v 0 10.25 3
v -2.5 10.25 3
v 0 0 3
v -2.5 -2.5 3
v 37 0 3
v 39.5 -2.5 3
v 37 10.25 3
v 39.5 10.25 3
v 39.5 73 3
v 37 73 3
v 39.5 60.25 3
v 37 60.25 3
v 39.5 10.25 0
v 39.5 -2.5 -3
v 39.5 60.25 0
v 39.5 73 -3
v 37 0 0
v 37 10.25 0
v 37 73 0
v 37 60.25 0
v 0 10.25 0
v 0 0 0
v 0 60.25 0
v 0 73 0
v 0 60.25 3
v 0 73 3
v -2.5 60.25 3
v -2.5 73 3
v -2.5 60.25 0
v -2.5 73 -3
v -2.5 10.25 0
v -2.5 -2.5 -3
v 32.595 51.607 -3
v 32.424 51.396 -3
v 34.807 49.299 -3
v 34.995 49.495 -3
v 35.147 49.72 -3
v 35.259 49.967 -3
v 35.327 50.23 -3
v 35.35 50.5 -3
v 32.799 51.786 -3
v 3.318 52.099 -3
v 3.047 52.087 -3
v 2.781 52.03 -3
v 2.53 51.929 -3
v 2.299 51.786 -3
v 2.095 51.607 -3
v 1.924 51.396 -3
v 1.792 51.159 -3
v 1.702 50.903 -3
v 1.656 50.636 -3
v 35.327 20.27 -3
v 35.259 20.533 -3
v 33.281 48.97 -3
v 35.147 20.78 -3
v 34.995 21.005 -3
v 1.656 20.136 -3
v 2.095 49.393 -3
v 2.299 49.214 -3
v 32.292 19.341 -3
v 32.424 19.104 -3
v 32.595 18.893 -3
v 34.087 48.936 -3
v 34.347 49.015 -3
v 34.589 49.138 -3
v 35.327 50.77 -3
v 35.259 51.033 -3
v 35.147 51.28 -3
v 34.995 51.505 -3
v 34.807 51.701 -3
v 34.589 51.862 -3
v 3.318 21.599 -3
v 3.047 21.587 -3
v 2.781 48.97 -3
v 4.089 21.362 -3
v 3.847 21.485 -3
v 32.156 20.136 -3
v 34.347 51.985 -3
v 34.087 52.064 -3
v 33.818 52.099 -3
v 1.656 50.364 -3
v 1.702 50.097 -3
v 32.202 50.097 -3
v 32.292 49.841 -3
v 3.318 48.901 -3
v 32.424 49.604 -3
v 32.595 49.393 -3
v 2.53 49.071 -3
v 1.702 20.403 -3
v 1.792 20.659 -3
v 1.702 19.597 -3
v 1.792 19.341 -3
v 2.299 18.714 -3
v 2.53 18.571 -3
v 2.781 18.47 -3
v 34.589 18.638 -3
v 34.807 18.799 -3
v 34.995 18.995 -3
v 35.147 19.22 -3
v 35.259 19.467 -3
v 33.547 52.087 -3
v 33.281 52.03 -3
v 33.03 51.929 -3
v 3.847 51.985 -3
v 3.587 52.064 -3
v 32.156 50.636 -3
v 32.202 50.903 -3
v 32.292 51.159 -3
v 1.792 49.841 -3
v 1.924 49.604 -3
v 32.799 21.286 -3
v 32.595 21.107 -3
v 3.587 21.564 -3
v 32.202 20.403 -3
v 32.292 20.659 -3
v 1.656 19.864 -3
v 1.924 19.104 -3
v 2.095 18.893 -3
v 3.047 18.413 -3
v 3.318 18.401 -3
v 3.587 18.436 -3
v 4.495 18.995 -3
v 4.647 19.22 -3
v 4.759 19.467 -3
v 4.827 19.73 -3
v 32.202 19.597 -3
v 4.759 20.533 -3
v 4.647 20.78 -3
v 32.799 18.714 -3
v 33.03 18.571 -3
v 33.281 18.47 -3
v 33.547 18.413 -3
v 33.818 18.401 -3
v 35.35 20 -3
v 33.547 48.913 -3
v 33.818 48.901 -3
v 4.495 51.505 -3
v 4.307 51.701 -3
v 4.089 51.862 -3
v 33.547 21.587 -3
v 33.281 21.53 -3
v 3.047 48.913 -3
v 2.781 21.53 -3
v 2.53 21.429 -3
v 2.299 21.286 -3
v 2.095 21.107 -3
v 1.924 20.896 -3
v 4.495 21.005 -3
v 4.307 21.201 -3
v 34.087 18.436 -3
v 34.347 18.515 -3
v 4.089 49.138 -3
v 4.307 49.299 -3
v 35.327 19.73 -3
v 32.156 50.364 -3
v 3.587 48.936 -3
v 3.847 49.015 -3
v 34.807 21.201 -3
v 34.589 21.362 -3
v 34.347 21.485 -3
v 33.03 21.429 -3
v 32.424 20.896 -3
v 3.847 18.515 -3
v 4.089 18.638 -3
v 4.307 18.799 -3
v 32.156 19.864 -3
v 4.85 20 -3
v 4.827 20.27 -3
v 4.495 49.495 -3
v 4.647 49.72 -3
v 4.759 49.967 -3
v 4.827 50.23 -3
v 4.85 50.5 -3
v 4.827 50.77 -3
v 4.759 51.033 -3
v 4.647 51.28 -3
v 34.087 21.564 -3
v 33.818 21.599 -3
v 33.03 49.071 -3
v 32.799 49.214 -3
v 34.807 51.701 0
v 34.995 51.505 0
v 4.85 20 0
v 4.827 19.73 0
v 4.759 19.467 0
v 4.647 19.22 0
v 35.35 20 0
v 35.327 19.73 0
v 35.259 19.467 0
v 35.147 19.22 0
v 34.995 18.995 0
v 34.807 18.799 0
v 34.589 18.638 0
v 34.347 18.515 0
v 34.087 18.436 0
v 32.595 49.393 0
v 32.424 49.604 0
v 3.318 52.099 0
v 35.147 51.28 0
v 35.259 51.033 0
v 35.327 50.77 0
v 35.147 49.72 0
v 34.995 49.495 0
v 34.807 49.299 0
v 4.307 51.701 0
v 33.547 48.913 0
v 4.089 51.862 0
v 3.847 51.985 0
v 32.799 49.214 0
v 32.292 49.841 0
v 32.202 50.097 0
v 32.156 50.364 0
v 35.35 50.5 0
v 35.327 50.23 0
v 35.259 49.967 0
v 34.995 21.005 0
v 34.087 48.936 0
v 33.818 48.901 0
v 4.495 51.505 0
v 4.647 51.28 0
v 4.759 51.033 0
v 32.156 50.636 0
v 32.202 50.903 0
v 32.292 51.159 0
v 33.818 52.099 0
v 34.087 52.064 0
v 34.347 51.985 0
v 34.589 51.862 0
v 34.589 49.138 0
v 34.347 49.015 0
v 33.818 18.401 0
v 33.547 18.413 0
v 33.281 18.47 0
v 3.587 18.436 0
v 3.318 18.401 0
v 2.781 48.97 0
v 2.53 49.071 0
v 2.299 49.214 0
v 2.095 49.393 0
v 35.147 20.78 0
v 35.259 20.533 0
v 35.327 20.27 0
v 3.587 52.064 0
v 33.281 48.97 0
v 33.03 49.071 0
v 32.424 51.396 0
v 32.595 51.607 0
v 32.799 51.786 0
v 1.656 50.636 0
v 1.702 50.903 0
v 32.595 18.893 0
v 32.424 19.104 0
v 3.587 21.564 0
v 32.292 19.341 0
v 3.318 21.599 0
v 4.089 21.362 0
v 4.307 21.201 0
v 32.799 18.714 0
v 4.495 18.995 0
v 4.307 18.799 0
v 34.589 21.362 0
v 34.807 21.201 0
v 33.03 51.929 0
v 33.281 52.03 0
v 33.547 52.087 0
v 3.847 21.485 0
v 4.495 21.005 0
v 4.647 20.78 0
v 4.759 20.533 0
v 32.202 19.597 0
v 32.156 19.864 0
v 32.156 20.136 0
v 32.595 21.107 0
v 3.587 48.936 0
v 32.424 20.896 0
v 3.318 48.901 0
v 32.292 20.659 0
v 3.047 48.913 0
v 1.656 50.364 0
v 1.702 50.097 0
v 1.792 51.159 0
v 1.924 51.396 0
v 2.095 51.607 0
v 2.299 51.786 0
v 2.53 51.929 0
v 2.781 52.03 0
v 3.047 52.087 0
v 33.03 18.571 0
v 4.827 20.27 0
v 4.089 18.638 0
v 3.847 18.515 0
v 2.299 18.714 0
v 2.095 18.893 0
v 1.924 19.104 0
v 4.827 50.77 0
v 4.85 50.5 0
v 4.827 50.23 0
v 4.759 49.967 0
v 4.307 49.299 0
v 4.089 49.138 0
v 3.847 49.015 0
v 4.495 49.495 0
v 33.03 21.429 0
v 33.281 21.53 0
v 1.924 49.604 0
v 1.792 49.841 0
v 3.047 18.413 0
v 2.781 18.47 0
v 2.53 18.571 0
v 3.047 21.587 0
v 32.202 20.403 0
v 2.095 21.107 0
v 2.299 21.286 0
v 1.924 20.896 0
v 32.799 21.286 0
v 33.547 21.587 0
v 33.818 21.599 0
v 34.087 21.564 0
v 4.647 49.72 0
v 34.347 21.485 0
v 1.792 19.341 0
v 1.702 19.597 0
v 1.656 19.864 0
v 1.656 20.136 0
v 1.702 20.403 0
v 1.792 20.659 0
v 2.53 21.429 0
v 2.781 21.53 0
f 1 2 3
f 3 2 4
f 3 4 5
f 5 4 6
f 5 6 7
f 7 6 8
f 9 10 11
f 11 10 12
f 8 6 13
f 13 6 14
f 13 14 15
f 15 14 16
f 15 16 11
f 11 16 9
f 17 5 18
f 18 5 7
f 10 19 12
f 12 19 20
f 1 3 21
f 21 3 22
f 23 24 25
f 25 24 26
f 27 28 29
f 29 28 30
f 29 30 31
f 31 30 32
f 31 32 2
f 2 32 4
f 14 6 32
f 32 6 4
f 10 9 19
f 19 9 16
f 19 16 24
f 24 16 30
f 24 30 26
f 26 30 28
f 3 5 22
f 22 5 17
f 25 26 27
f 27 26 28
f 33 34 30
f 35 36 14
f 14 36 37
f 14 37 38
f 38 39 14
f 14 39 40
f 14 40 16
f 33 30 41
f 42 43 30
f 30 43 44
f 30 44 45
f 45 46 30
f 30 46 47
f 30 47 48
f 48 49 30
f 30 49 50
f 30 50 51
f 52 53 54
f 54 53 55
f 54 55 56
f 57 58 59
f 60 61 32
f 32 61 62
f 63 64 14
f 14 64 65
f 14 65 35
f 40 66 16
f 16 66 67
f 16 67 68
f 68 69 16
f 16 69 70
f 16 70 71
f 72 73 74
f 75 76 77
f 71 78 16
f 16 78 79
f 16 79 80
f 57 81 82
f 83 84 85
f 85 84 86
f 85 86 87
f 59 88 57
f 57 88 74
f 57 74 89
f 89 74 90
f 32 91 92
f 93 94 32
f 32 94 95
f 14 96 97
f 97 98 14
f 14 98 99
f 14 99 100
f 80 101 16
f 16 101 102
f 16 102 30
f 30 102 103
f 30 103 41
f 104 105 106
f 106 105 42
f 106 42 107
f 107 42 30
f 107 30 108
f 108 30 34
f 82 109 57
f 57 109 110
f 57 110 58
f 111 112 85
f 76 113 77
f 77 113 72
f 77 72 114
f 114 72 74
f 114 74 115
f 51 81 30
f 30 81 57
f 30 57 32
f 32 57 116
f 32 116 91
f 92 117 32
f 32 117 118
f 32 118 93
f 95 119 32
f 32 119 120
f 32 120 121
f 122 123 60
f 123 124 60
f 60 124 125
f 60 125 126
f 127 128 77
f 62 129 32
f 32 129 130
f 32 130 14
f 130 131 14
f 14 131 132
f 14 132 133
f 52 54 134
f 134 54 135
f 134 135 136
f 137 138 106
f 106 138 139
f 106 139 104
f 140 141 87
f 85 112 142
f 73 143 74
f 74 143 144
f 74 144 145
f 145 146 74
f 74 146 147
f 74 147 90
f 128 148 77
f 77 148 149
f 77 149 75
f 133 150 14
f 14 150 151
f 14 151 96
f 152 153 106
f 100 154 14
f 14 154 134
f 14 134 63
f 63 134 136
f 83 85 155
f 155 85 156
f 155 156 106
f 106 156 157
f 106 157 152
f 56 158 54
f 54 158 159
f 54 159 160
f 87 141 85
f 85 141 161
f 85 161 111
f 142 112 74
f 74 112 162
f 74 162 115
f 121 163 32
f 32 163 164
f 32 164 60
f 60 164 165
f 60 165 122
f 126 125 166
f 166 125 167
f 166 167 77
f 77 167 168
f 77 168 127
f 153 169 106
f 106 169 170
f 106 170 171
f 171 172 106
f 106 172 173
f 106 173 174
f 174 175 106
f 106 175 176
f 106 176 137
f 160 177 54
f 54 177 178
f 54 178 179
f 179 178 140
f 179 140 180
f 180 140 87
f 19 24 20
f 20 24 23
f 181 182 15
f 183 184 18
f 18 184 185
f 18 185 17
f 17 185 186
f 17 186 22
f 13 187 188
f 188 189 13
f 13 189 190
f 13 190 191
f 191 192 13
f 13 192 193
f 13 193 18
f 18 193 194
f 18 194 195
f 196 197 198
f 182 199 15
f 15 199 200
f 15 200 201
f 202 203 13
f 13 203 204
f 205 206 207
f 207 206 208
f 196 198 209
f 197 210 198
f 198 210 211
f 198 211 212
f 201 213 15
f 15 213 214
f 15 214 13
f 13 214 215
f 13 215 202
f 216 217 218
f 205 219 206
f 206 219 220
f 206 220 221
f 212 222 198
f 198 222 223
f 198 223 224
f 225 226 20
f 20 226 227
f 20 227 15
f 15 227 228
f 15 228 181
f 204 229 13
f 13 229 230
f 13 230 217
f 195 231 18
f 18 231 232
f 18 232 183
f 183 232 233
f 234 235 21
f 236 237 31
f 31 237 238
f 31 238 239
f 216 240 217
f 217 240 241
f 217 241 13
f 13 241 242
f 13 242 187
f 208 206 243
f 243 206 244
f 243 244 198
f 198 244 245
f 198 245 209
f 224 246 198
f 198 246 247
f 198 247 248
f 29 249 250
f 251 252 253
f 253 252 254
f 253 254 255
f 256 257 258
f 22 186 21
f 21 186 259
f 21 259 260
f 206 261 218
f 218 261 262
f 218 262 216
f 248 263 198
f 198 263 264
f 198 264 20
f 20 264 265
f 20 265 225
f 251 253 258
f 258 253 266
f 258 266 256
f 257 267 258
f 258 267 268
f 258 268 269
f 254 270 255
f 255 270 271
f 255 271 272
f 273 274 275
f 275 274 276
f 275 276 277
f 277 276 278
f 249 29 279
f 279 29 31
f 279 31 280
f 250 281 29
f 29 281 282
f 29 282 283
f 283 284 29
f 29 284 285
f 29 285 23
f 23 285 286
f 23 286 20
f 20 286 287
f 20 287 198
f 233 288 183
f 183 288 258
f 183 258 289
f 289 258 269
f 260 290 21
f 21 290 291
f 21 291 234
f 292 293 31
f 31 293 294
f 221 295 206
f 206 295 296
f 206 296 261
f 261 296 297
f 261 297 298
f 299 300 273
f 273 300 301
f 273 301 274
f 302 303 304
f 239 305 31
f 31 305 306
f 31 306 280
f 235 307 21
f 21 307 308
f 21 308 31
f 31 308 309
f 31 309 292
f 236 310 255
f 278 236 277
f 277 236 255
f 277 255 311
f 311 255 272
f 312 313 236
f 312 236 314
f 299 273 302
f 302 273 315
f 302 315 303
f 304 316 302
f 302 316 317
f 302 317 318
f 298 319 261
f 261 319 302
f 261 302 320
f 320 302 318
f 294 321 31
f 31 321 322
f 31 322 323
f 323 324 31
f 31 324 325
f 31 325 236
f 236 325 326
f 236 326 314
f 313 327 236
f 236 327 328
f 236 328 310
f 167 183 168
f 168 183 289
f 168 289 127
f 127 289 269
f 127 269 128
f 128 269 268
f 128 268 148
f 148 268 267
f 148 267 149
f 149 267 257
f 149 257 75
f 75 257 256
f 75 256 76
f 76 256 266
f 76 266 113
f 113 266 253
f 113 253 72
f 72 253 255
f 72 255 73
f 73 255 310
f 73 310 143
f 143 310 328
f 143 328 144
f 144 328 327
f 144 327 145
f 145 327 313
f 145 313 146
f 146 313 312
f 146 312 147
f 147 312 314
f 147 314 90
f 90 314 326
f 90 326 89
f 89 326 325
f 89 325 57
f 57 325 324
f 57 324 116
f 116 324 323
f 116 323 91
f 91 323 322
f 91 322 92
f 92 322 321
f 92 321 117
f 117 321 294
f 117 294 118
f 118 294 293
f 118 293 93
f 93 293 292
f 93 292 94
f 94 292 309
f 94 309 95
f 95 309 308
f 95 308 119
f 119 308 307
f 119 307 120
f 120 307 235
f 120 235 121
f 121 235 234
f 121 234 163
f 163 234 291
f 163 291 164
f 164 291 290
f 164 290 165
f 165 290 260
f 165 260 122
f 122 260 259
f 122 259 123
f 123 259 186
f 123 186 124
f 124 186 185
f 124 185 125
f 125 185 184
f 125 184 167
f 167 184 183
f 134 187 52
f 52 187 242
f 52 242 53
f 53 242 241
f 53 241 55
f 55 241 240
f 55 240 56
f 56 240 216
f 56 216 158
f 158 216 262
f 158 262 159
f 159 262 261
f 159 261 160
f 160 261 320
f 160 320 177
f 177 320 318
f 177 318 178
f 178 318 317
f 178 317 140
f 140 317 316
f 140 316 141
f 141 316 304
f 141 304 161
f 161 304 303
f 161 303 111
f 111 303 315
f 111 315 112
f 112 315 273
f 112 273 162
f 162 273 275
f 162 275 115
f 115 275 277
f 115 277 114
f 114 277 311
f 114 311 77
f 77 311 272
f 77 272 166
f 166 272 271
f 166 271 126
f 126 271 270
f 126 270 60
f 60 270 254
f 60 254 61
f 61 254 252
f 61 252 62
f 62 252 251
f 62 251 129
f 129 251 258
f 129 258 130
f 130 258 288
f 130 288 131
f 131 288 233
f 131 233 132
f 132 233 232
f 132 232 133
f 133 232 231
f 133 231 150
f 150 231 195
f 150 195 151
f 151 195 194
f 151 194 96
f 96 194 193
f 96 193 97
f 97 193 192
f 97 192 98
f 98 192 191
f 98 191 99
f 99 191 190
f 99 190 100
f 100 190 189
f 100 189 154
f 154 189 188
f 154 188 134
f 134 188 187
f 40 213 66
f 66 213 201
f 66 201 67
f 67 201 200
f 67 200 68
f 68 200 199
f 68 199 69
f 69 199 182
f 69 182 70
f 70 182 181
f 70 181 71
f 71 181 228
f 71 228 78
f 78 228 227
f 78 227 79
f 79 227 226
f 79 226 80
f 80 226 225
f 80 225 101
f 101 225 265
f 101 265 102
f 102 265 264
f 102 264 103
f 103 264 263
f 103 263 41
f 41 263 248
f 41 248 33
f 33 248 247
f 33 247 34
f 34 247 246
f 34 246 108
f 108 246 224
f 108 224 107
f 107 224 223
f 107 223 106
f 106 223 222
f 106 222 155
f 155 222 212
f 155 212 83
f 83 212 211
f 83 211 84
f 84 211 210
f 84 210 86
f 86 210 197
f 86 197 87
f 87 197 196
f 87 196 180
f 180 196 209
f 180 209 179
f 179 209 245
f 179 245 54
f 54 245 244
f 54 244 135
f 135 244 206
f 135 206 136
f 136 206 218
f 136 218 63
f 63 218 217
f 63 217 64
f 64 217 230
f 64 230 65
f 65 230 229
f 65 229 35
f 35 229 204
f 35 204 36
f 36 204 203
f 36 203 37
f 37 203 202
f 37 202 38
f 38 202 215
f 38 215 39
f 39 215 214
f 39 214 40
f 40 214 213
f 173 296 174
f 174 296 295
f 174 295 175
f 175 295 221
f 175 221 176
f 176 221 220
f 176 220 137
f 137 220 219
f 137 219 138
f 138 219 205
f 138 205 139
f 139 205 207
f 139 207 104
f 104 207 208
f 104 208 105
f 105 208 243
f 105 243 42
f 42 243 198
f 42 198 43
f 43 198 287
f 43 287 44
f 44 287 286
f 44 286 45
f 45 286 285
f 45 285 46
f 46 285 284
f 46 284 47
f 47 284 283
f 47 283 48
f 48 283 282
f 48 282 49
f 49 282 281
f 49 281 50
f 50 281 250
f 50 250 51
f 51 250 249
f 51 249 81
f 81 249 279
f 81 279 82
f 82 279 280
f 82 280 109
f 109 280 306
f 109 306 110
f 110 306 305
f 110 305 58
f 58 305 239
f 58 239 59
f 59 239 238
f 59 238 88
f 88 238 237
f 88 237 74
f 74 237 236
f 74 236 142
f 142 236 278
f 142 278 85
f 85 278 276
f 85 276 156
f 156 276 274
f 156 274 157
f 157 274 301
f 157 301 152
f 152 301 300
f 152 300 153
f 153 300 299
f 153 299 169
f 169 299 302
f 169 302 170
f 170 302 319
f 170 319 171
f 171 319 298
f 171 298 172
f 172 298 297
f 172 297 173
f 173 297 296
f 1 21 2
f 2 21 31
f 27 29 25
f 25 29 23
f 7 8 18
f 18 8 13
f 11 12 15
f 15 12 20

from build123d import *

# Parameters (mm, degrees)
EXTRUDE_THIN1_DEPTH        = 3
SKETCH2_W                  = 42
SKETCH2_H                  = 75.5
BOSS_EXTRUDE2_DEPTH        = 3
F_3_2_3_2_DIAMETER_HOLE1_D = 3.2
SKETCH6_W                  = 2.5
SKETCH6_H                  = 50
CUT_EXTRUDE1_DEPTH         = 3


with BuildPart() as part:
    # Sketch1 → Extrude-Thin1 (new body)
    with BuildSketch(Plane.XY):
        Polygon((0, 73), (0, 0), (37, 0), (37, 73), (39.5, 73), (39.5, -2.5), (-2.5, -2.5), (-2.5, 73), align=None)
    extrude(amount=EXTRUDE_THIN1_DEPTH)

    # Sketch2 → Boss-Extrude2 (add)
    with BuildSketch(Plane(origin=(0, 0, 0), x_dir=(-1, 0, 0), z_dir=(0, 0, -1))):
        with Locations((-18.5, 35.25)):
            Rectangle(SKETCH2_W, SKETCH2_H)
    extrude(amount=BOSS_EXTRUDE2_DEPTH)

    # Ø3.2 (3.2) Diameter Hole1 (through all)
    with Locations(Plane.XY):
        with Locations((3.25, 50.5), (33.75, 50.5), (33.75, 20), (3.25, 20)):
            Hole(F_3_2_3_2_DIAMETER_HOLE1_D / 2)

    # Sketch6 → Cut-Extrude1 (cut)
    with BuildSketch(Plane.XY.offset(3)):
        with Locations((-1.25, 35.25)):
            Rectangle(SKETCH6_W, SKETCH6_H)
    cut_extrude1 = extrude(amount=-CUT_EXTRUDE1_DEPTH, mode=Mode.SUBTRACT)

    # Mirror1: Cut-Extrude1 across plane
    add(cut_extrude1.mirror(Plane(origin=(18.5, 0, 0), x_dir=(0, 0, 1), z_dir=(1, 0, 0))), mode=Mode.SUBTRACT)


solid = part.part
